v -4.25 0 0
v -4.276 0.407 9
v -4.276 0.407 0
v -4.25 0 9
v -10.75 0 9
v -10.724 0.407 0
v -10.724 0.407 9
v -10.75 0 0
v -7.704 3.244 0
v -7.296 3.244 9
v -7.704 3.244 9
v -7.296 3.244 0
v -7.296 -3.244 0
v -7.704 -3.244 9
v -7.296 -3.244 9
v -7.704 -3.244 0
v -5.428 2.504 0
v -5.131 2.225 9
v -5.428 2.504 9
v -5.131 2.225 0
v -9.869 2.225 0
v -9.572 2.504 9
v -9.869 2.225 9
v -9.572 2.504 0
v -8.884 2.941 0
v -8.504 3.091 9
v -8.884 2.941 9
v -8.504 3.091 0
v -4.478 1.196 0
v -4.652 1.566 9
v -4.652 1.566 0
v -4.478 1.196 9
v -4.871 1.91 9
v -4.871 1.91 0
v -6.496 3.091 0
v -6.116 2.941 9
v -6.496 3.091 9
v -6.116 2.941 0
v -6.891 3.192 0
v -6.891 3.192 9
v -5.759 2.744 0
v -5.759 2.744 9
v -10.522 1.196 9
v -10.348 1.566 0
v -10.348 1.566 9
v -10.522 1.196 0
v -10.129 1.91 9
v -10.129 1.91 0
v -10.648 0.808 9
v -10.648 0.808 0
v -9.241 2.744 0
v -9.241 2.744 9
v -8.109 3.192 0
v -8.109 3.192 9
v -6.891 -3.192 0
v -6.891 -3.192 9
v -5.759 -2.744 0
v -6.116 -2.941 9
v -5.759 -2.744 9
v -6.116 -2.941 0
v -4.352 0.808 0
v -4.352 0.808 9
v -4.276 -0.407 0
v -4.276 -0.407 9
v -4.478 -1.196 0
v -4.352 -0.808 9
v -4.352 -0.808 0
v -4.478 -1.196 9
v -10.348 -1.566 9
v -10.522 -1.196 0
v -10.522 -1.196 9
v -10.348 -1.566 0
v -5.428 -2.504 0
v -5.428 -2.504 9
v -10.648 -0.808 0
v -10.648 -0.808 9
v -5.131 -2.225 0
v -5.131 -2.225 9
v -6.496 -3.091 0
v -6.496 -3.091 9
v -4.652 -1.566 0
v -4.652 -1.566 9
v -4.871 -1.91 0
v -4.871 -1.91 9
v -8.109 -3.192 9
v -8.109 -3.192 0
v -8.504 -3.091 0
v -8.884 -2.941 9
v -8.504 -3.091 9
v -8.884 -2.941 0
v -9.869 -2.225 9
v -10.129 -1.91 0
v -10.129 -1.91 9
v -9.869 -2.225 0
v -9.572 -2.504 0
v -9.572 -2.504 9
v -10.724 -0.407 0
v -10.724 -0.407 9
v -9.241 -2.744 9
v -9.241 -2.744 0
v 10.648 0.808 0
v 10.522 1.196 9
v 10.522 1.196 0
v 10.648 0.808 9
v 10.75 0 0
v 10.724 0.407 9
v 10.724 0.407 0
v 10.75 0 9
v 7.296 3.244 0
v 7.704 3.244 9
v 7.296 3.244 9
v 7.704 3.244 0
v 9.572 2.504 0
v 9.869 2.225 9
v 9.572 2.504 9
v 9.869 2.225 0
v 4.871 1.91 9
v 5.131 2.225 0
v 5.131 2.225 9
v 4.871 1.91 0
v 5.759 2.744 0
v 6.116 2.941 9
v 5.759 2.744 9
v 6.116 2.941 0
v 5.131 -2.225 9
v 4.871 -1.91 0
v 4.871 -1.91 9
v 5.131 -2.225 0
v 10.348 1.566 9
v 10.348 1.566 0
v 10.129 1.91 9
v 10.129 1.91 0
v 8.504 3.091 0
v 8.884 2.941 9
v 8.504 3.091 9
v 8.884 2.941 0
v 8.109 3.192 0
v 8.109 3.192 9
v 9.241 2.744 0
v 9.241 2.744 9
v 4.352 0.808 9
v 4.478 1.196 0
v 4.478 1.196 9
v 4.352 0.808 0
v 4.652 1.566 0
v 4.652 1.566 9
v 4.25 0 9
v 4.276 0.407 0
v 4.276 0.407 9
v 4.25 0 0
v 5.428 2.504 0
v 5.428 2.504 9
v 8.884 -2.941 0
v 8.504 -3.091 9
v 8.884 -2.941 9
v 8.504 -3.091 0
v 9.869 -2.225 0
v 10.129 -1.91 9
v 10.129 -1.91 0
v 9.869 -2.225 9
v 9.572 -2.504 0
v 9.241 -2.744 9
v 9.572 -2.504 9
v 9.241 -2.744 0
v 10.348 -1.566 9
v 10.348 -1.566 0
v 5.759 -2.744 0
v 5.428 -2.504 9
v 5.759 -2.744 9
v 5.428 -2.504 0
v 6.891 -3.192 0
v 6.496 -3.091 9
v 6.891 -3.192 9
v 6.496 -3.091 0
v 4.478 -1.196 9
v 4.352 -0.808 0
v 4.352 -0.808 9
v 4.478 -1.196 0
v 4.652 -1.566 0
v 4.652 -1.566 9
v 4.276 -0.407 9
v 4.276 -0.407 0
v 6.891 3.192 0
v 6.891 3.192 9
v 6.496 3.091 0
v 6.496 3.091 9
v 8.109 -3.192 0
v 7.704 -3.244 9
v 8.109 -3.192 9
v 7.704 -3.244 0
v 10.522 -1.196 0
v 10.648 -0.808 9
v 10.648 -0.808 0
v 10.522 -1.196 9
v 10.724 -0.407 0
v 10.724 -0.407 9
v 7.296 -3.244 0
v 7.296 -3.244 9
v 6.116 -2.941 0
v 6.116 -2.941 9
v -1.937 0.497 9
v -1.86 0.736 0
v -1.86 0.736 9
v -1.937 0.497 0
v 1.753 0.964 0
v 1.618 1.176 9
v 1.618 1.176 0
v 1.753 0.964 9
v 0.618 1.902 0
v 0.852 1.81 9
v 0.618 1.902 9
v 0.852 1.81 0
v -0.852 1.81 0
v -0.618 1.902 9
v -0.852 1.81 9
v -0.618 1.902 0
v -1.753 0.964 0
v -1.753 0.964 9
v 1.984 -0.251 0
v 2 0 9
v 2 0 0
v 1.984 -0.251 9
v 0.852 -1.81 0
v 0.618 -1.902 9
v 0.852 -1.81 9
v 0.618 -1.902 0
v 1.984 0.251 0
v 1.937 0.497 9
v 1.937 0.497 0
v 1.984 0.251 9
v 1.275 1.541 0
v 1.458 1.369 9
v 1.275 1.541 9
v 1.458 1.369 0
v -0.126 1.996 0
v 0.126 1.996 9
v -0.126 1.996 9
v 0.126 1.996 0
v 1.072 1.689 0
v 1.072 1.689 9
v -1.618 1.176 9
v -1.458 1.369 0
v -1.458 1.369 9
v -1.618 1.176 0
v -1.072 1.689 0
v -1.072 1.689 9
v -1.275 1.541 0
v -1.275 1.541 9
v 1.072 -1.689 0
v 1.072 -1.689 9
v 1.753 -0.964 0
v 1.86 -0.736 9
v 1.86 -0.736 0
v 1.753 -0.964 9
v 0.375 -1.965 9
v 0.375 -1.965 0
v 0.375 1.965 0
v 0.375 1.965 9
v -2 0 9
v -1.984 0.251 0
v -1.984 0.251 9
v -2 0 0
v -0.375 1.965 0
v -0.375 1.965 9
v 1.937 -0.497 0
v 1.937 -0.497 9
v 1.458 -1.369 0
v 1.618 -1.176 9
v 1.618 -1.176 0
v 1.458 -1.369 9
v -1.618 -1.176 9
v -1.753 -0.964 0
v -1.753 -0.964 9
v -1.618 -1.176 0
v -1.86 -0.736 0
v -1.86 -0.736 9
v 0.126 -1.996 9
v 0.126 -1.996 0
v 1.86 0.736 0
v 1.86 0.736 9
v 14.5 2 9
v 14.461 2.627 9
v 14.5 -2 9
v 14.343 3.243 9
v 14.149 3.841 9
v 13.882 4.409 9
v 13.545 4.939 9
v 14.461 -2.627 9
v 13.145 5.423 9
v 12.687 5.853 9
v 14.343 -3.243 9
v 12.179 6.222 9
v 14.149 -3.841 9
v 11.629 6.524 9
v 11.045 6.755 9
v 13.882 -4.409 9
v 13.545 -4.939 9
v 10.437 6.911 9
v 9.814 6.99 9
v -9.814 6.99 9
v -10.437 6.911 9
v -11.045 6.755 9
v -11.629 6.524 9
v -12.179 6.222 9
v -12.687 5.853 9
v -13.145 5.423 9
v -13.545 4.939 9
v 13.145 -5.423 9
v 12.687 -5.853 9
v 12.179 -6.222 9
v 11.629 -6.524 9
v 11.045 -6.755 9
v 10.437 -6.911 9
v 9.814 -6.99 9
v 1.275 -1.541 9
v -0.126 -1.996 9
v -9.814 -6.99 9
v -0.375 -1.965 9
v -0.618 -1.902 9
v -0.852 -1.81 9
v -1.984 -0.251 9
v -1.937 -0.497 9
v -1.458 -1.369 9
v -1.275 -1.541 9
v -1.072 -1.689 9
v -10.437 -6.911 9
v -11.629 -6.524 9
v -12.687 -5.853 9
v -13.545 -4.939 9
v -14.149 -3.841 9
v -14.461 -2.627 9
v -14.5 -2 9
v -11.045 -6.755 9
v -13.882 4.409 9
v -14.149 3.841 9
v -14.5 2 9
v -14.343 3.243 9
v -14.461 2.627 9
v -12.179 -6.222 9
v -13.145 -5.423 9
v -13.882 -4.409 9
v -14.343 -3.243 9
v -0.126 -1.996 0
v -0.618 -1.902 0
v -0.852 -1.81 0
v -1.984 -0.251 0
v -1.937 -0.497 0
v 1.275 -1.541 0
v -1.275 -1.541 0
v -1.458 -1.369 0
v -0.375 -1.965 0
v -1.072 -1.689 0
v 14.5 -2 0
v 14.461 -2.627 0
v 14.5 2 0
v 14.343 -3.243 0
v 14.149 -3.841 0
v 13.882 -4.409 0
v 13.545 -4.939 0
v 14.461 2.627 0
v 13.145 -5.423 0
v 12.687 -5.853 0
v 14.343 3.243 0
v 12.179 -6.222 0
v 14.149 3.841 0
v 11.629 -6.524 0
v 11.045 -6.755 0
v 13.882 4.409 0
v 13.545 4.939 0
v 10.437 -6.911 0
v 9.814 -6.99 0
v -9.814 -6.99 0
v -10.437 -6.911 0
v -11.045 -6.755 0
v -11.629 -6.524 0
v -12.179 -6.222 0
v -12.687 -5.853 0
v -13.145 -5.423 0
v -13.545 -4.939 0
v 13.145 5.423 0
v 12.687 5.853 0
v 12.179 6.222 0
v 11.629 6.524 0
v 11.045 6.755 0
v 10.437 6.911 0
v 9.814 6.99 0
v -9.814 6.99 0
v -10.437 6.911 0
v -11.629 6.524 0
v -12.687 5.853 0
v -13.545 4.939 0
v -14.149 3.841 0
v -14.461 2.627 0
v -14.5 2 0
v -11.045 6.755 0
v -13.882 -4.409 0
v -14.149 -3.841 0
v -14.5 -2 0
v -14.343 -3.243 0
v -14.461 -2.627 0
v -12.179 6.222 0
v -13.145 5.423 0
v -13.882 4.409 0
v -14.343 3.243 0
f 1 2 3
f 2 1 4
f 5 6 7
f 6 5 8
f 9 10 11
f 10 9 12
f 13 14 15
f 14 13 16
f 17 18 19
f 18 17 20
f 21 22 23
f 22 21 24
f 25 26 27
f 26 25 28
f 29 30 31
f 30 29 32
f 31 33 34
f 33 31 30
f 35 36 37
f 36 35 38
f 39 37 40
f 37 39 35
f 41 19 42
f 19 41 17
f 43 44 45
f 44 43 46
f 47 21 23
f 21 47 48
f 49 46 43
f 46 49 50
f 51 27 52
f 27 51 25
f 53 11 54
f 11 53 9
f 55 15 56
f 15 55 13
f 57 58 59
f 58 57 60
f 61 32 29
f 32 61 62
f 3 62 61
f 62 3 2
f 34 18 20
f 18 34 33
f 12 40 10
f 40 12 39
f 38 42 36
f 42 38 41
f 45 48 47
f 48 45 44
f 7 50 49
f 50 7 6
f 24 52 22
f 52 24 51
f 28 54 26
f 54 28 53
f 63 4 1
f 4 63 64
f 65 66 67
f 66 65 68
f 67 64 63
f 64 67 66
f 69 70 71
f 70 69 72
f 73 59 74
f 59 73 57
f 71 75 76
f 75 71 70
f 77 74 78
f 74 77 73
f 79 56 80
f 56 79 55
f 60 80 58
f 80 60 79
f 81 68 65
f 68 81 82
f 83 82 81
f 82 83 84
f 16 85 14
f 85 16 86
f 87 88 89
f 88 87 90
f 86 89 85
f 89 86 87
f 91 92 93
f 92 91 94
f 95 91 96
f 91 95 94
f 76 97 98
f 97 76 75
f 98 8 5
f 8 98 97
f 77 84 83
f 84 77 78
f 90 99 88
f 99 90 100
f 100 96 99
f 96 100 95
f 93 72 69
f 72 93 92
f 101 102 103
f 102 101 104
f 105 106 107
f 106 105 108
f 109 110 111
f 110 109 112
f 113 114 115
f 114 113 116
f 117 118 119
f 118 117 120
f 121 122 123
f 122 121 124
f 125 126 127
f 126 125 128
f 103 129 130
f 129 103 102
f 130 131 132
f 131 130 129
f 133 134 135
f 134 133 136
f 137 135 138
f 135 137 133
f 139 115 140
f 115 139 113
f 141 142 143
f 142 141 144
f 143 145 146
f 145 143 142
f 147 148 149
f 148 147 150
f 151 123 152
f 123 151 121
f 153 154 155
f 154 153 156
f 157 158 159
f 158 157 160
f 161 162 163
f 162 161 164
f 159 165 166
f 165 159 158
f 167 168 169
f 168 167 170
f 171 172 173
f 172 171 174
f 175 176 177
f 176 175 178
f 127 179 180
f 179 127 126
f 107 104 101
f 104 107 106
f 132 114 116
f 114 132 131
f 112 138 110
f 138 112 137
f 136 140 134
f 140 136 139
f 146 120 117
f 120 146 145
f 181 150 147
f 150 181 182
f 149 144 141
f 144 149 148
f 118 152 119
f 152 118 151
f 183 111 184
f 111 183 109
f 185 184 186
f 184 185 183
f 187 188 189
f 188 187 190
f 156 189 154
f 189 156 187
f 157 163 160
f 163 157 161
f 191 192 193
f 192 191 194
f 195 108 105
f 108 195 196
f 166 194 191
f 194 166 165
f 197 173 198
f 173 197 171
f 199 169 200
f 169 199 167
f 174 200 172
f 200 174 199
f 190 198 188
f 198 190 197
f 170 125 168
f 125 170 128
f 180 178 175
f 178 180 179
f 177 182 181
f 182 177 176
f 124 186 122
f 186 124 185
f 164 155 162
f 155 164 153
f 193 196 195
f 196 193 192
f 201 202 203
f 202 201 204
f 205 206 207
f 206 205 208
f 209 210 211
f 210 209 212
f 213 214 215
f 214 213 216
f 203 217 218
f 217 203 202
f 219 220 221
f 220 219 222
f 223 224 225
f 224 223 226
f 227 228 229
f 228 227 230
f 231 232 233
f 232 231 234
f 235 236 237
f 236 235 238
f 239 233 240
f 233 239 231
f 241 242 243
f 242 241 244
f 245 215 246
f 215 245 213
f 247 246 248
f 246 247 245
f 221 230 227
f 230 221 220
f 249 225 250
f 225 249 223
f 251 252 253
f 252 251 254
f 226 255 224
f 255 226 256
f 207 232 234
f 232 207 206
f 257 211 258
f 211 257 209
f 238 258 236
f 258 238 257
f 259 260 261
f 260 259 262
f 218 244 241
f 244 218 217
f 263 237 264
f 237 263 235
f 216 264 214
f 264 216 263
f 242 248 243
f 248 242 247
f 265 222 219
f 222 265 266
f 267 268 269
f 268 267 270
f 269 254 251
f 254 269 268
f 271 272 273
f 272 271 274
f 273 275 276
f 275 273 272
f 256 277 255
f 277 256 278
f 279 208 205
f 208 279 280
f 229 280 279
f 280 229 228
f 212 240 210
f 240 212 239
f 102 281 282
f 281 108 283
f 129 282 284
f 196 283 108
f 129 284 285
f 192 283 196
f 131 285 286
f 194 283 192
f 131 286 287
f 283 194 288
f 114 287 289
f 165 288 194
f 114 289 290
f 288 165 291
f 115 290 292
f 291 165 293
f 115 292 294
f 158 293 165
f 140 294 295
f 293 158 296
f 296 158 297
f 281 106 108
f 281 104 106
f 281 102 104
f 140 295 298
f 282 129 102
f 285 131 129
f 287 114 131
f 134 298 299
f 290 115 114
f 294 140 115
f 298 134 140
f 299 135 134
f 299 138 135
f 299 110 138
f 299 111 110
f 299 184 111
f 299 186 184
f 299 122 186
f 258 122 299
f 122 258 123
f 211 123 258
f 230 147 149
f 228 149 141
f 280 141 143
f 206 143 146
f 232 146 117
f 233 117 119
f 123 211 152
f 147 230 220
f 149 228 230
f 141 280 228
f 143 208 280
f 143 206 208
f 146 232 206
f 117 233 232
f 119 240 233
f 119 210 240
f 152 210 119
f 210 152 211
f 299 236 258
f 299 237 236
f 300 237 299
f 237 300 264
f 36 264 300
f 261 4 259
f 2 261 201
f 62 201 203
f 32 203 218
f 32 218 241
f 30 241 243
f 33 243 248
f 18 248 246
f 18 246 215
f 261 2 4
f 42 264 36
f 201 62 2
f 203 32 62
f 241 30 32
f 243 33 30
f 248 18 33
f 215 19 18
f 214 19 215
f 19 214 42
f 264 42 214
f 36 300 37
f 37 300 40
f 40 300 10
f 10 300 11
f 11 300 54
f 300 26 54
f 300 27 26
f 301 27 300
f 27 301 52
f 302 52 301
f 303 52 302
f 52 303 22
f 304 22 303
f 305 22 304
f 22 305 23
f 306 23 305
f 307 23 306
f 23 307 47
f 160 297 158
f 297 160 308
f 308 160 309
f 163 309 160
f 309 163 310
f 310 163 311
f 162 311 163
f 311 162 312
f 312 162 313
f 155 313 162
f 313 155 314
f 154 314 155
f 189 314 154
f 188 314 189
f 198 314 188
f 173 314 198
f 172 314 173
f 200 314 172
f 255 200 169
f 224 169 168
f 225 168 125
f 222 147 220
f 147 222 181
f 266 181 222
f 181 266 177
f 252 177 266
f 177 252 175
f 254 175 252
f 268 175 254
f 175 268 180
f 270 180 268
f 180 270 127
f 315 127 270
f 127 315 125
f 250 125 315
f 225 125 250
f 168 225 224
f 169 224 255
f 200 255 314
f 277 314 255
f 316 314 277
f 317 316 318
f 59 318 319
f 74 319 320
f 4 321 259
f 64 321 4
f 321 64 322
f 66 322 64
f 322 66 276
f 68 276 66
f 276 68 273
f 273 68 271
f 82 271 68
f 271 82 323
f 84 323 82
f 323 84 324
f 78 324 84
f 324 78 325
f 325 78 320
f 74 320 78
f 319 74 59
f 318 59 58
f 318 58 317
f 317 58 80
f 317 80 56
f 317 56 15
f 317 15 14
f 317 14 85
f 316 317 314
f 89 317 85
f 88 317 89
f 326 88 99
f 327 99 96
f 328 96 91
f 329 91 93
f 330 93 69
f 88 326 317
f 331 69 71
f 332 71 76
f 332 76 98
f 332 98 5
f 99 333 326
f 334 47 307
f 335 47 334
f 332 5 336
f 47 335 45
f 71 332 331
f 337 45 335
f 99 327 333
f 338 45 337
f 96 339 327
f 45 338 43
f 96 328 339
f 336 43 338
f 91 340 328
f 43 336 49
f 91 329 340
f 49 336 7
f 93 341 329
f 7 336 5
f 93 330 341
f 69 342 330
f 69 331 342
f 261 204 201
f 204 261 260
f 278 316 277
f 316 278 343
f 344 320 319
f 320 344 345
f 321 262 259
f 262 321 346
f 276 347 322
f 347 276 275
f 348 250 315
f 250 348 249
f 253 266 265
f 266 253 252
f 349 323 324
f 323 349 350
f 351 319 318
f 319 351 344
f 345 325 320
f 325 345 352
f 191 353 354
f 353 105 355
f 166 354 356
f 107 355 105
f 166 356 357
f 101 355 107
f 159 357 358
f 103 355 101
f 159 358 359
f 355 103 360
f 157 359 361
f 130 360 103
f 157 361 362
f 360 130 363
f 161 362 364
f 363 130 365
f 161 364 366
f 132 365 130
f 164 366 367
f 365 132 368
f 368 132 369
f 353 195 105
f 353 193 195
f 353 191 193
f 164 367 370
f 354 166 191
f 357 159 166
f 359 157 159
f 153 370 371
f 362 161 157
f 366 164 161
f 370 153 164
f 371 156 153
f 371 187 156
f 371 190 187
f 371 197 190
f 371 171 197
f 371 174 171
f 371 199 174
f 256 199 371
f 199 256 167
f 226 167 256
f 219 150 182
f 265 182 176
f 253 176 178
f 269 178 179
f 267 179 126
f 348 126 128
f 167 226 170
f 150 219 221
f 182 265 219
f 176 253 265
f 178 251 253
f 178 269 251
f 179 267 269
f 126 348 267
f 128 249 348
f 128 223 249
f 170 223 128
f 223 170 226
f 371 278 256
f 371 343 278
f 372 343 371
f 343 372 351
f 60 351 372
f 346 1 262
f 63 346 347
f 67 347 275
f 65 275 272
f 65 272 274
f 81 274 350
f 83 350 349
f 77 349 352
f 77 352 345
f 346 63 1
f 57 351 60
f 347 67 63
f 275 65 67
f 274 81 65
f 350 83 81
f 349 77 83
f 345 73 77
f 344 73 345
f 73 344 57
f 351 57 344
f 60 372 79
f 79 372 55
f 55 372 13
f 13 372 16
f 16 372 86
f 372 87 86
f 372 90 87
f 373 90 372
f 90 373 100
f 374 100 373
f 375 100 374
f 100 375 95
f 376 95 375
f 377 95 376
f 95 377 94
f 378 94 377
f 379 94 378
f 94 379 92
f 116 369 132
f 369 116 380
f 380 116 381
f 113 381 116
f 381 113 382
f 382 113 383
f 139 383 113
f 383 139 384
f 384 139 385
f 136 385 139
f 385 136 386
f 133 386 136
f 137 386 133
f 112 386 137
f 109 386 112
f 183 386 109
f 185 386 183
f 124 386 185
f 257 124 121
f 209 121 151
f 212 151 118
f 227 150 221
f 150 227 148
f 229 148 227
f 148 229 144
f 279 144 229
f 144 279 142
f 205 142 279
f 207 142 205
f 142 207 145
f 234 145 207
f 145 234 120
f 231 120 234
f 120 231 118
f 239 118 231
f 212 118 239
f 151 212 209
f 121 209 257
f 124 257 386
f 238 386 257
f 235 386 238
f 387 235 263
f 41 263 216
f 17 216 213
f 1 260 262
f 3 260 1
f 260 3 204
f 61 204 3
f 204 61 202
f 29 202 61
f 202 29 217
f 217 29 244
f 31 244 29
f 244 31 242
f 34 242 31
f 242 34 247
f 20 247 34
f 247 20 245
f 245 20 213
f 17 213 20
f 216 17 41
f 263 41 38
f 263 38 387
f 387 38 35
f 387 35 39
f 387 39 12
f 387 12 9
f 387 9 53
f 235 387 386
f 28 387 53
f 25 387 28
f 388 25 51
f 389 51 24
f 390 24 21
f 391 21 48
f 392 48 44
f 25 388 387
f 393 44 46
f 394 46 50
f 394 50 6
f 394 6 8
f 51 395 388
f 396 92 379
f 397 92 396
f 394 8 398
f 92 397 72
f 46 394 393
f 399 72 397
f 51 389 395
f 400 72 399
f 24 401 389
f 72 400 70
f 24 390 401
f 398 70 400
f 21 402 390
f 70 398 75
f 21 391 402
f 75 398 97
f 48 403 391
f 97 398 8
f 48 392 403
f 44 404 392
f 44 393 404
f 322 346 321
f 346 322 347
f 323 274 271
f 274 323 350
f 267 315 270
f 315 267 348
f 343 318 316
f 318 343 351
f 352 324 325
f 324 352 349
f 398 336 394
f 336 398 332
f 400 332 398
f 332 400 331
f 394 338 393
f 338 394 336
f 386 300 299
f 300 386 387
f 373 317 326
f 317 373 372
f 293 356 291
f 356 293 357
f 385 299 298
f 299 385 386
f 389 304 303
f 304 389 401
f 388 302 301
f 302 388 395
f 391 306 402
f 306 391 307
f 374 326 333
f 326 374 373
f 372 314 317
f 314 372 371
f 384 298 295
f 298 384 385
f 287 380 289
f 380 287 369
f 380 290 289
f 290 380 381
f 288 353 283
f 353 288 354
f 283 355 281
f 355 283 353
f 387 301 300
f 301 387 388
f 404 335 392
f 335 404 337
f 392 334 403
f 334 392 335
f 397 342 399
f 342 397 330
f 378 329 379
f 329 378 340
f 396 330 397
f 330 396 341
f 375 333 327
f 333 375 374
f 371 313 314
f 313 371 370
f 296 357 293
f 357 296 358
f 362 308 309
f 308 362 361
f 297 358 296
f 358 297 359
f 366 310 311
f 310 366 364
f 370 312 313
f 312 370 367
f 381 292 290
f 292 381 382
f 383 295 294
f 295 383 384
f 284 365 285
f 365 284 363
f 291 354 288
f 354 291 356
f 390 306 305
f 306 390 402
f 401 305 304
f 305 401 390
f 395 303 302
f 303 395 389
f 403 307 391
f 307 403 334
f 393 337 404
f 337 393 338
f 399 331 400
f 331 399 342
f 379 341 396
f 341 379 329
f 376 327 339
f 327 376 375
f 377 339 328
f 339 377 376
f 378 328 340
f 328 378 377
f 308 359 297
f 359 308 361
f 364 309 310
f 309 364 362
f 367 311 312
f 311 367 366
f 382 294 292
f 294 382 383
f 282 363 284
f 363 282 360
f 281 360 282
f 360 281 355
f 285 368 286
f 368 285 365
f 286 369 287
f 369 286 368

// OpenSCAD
$fn = 50;


difference() {
	union() {
		hull() {
			translate(v = [-9.5000000000, 2.0000000000, 0]) {
				cylinder(h = 9, r = 5);
			}
			translate(v = [9.5000000000, 2.0000000000, 0]) {
				cylinder(h = 9, r = 5);
			}
			translate(v = [-9.5000000000, -2.0000000000, 0]) {
				cylinder(h = 9, r = 5);
			}
			translate(v = [9.5000000000, -2.0000000000, 0]) {
				cylinder(h = 9, r = 5);
			}
		}
	}
	union() {
		#translate(v = [-7.5000000000, 0.0000000000, 0]) {
			cylinder(h = 9, r = 3.2500000000);
		}
		#translate(v = [7.5000000000, 0.0000000000, 0]) {
			cylinder(h = 9, r = 3.2500000000);
		}
		#translate(v = [-7.5000000000, 0.0000000000, -100.0000000000]) {
			cylinder(h = 200, r = 3.2500000000);
		}
		#translate(v = [-7.5000000000, 0.0000000000, -100.0000000000]) {
			cylinder(h = 200, r = 3.2500000000);
		}
		#translate(v = [7.5000000000, 0.0000000000, -100.0000000000]) {
			cylinder(h = 200, r = 3.2500000000);
		}
		#translate(v = [7.5000000000, 0.0000000000, -100.0000000000]) {
			cylinder(h = 200, r = 3.2500000000);
		}
		#translate(v = [-7.5000000000, 0.0000000000, 0]) {
			cylinder(h = 9, r = 1.8000000000);
		}
		#translate(v = [7.5000000000, 0.0000000000, 0]) {
			cylinder(h = 9, r = 1.8000000000);
		}
		#translate(v = [-7.5000000000, 0.0000000000, 0]) {
			cylinder(h = 9, r = 1.8000000000);
		}
		#translate(v = [7.5000000000, 0.0000000000, 0]) {
			cylinder(h = 9, r = 1.8000000000);
		}
		#translate(v = [-7.5000000000, 0.0000000000, 0]) {
			cylinder(h = 9, r = 1.8000000000);
		}
		#translate(v = [7.5000000000, 0.0000000000, 0]) {
			cylinder(h = 9, r = 1.8000000000);
		}
		#cylinder(h = 9, r = 2.0000000000);
	}
}
